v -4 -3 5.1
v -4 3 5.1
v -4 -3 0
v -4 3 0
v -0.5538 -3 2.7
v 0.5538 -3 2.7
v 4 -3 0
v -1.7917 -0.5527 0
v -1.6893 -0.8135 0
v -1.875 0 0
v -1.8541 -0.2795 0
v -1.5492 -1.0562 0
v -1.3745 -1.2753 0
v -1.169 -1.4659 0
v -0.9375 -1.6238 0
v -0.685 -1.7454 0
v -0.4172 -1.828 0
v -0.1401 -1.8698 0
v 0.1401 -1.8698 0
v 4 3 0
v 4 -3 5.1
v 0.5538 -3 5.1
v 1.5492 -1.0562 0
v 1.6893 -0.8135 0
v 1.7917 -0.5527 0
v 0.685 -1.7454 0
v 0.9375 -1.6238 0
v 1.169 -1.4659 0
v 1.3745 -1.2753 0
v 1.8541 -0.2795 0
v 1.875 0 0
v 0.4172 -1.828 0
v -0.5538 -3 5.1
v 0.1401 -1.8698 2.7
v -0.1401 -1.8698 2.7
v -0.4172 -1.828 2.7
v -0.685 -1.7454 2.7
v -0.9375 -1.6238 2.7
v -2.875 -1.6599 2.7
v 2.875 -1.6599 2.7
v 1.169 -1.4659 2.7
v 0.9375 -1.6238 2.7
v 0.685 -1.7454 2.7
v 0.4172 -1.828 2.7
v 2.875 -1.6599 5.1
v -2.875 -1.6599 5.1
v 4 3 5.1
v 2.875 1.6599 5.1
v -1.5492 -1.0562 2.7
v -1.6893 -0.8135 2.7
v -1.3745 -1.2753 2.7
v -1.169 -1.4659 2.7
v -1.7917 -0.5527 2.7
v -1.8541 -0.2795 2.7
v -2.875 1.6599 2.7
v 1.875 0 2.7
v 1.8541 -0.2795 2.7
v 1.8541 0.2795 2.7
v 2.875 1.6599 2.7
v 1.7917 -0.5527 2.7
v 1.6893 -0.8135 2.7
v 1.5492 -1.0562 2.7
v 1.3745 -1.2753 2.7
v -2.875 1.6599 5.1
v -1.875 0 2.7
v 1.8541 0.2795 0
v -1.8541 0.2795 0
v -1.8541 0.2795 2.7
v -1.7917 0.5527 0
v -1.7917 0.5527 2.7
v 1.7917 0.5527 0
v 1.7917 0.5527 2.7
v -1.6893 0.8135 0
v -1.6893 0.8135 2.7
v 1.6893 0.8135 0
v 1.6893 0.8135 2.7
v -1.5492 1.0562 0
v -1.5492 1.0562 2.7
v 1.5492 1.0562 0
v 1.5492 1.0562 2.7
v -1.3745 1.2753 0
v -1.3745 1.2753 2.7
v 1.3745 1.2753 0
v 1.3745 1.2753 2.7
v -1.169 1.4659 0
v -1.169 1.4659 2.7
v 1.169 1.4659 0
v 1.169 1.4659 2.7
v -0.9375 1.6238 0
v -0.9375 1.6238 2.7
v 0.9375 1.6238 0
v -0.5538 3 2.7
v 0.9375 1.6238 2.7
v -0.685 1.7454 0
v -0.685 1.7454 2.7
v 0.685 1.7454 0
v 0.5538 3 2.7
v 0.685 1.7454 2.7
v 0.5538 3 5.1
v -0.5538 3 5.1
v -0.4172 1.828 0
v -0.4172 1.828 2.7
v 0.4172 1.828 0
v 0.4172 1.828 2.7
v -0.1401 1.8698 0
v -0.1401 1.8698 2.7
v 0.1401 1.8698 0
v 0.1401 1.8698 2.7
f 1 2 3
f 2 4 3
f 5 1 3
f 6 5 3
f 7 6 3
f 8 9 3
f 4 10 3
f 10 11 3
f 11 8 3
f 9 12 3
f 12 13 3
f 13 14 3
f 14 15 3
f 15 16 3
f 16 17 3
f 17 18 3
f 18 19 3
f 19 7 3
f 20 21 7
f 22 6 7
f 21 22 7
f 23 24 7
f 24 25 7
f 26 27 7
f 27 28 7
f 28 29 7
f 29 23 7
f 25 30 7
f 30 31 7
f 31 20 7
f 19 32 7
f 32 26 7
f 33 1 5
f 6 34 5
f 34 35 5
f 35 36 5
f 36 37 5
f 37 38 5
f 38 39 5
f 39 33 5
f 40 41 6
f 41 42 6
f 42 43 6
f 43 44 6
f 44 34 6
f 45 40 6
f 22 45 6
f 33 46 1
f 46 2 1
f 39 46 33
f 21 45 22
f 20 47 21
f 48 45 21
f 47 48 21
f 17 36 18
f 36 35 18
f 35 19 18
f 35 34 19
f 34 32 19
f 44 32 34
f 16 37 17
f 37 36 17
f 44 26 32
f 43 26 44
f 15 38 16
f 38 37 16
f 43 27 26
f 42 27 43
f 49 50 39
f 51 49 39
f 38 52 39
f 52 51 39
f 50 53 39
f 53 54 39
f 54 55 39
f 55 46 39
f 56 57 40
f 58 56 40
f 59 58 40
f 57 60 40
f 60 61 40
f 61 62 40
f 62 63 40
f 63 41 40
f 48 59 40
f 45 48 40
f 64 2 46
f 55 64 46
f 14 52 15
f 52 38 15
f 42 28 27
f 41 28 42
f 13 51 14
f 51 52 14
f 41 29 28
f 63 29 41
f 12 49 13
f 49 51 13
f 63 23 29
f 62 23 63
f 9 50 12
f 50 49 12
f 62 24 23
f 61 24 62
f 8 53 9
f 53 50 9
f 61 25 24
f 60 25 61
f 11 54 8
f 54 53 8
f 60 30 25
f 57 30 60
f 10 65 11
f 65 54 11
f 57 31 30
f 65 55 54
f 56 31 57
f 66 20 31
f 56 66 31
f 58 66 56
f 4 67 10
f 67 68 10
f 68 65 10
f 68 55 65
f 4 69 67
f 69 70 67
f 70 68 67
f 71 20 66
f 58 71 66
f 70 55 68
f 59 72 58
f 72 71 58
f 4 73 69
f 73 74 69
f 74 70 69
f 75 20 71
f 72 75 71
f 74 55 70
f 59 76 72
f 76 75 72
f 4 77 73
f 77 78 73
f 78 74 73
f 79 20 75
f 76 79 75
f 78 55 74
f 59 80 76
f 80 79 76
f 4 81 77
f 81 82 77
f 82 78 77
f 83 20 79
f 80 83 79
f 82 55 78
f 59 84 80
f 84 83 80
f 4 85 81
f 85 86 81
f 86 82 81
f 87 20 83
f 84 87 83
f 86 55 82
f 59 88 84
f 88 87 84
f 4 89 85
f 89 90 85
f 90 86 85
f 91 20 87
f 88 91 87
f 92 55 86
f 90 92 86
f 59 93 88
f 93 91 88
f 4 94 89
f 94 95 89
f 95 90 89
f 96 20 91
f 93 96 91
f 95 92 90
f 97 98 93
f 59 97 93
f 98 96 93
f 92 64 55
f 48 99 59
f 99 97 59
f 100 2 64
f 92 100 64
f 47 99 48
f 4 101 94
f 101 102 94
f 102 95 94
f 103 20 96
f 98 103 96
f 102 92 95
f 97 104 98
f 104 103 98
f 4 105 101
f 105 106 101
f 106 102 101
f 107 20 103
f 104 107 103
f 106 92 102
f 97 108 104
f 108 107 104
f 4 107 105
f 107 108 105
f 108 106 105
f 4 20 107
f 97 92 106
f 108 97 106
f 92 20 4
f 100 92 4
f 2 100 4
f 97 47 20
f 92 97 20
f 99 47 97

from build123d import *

# Parameters (mm, degrees)
ESBO_O1_W                = 8
ESBO_O1_H                = 6
RESSALTO_EXTRUS_O1_DEPTH = 5.1
CORTE_EXTRUS_O1_DEPTH    = 2.4
ESBO_O3_R                = 1.875
CORTE_EXTRUS_O2_DEPTH    = 2.7


with BuildPart() as part:
    # Esboço1 → Ressalto-extrusão1 (new body)
    with BuildSketch(Plane.XY):
        Rectangle(ESBO_O1_W, ESBO_O1_H)
    extrude(amount=RESSALTO_EXTRUS_O1_DEPTH)

    # Esboço2 → Corte-extrusão1 (cut)
    with BuildSketch(Plane.XY.offset(5.1)):
        Polygon((0, -3.319764048), (2.875, -1.659882024), (2.875, 1.659882024), (0, 3.319764048), (-2.875, 1.659882024), (-2.875, -1.659882024), align=None)
    extrude(amount=-CORTE_EXTRUS_O1_DEPTH, mode=Mode.SUBTRACT)

    # Esboço3 → Corte-extrusão2 (cut)
    with BuildSketch(Plane.XY.offset(2.7)):
        Circle(ESBO_O3_R)
    extrude(amount=-CORTE_EXTRUS_O2_DEPTH, mode=Mode.SUBTRACT)


solid = part.part
